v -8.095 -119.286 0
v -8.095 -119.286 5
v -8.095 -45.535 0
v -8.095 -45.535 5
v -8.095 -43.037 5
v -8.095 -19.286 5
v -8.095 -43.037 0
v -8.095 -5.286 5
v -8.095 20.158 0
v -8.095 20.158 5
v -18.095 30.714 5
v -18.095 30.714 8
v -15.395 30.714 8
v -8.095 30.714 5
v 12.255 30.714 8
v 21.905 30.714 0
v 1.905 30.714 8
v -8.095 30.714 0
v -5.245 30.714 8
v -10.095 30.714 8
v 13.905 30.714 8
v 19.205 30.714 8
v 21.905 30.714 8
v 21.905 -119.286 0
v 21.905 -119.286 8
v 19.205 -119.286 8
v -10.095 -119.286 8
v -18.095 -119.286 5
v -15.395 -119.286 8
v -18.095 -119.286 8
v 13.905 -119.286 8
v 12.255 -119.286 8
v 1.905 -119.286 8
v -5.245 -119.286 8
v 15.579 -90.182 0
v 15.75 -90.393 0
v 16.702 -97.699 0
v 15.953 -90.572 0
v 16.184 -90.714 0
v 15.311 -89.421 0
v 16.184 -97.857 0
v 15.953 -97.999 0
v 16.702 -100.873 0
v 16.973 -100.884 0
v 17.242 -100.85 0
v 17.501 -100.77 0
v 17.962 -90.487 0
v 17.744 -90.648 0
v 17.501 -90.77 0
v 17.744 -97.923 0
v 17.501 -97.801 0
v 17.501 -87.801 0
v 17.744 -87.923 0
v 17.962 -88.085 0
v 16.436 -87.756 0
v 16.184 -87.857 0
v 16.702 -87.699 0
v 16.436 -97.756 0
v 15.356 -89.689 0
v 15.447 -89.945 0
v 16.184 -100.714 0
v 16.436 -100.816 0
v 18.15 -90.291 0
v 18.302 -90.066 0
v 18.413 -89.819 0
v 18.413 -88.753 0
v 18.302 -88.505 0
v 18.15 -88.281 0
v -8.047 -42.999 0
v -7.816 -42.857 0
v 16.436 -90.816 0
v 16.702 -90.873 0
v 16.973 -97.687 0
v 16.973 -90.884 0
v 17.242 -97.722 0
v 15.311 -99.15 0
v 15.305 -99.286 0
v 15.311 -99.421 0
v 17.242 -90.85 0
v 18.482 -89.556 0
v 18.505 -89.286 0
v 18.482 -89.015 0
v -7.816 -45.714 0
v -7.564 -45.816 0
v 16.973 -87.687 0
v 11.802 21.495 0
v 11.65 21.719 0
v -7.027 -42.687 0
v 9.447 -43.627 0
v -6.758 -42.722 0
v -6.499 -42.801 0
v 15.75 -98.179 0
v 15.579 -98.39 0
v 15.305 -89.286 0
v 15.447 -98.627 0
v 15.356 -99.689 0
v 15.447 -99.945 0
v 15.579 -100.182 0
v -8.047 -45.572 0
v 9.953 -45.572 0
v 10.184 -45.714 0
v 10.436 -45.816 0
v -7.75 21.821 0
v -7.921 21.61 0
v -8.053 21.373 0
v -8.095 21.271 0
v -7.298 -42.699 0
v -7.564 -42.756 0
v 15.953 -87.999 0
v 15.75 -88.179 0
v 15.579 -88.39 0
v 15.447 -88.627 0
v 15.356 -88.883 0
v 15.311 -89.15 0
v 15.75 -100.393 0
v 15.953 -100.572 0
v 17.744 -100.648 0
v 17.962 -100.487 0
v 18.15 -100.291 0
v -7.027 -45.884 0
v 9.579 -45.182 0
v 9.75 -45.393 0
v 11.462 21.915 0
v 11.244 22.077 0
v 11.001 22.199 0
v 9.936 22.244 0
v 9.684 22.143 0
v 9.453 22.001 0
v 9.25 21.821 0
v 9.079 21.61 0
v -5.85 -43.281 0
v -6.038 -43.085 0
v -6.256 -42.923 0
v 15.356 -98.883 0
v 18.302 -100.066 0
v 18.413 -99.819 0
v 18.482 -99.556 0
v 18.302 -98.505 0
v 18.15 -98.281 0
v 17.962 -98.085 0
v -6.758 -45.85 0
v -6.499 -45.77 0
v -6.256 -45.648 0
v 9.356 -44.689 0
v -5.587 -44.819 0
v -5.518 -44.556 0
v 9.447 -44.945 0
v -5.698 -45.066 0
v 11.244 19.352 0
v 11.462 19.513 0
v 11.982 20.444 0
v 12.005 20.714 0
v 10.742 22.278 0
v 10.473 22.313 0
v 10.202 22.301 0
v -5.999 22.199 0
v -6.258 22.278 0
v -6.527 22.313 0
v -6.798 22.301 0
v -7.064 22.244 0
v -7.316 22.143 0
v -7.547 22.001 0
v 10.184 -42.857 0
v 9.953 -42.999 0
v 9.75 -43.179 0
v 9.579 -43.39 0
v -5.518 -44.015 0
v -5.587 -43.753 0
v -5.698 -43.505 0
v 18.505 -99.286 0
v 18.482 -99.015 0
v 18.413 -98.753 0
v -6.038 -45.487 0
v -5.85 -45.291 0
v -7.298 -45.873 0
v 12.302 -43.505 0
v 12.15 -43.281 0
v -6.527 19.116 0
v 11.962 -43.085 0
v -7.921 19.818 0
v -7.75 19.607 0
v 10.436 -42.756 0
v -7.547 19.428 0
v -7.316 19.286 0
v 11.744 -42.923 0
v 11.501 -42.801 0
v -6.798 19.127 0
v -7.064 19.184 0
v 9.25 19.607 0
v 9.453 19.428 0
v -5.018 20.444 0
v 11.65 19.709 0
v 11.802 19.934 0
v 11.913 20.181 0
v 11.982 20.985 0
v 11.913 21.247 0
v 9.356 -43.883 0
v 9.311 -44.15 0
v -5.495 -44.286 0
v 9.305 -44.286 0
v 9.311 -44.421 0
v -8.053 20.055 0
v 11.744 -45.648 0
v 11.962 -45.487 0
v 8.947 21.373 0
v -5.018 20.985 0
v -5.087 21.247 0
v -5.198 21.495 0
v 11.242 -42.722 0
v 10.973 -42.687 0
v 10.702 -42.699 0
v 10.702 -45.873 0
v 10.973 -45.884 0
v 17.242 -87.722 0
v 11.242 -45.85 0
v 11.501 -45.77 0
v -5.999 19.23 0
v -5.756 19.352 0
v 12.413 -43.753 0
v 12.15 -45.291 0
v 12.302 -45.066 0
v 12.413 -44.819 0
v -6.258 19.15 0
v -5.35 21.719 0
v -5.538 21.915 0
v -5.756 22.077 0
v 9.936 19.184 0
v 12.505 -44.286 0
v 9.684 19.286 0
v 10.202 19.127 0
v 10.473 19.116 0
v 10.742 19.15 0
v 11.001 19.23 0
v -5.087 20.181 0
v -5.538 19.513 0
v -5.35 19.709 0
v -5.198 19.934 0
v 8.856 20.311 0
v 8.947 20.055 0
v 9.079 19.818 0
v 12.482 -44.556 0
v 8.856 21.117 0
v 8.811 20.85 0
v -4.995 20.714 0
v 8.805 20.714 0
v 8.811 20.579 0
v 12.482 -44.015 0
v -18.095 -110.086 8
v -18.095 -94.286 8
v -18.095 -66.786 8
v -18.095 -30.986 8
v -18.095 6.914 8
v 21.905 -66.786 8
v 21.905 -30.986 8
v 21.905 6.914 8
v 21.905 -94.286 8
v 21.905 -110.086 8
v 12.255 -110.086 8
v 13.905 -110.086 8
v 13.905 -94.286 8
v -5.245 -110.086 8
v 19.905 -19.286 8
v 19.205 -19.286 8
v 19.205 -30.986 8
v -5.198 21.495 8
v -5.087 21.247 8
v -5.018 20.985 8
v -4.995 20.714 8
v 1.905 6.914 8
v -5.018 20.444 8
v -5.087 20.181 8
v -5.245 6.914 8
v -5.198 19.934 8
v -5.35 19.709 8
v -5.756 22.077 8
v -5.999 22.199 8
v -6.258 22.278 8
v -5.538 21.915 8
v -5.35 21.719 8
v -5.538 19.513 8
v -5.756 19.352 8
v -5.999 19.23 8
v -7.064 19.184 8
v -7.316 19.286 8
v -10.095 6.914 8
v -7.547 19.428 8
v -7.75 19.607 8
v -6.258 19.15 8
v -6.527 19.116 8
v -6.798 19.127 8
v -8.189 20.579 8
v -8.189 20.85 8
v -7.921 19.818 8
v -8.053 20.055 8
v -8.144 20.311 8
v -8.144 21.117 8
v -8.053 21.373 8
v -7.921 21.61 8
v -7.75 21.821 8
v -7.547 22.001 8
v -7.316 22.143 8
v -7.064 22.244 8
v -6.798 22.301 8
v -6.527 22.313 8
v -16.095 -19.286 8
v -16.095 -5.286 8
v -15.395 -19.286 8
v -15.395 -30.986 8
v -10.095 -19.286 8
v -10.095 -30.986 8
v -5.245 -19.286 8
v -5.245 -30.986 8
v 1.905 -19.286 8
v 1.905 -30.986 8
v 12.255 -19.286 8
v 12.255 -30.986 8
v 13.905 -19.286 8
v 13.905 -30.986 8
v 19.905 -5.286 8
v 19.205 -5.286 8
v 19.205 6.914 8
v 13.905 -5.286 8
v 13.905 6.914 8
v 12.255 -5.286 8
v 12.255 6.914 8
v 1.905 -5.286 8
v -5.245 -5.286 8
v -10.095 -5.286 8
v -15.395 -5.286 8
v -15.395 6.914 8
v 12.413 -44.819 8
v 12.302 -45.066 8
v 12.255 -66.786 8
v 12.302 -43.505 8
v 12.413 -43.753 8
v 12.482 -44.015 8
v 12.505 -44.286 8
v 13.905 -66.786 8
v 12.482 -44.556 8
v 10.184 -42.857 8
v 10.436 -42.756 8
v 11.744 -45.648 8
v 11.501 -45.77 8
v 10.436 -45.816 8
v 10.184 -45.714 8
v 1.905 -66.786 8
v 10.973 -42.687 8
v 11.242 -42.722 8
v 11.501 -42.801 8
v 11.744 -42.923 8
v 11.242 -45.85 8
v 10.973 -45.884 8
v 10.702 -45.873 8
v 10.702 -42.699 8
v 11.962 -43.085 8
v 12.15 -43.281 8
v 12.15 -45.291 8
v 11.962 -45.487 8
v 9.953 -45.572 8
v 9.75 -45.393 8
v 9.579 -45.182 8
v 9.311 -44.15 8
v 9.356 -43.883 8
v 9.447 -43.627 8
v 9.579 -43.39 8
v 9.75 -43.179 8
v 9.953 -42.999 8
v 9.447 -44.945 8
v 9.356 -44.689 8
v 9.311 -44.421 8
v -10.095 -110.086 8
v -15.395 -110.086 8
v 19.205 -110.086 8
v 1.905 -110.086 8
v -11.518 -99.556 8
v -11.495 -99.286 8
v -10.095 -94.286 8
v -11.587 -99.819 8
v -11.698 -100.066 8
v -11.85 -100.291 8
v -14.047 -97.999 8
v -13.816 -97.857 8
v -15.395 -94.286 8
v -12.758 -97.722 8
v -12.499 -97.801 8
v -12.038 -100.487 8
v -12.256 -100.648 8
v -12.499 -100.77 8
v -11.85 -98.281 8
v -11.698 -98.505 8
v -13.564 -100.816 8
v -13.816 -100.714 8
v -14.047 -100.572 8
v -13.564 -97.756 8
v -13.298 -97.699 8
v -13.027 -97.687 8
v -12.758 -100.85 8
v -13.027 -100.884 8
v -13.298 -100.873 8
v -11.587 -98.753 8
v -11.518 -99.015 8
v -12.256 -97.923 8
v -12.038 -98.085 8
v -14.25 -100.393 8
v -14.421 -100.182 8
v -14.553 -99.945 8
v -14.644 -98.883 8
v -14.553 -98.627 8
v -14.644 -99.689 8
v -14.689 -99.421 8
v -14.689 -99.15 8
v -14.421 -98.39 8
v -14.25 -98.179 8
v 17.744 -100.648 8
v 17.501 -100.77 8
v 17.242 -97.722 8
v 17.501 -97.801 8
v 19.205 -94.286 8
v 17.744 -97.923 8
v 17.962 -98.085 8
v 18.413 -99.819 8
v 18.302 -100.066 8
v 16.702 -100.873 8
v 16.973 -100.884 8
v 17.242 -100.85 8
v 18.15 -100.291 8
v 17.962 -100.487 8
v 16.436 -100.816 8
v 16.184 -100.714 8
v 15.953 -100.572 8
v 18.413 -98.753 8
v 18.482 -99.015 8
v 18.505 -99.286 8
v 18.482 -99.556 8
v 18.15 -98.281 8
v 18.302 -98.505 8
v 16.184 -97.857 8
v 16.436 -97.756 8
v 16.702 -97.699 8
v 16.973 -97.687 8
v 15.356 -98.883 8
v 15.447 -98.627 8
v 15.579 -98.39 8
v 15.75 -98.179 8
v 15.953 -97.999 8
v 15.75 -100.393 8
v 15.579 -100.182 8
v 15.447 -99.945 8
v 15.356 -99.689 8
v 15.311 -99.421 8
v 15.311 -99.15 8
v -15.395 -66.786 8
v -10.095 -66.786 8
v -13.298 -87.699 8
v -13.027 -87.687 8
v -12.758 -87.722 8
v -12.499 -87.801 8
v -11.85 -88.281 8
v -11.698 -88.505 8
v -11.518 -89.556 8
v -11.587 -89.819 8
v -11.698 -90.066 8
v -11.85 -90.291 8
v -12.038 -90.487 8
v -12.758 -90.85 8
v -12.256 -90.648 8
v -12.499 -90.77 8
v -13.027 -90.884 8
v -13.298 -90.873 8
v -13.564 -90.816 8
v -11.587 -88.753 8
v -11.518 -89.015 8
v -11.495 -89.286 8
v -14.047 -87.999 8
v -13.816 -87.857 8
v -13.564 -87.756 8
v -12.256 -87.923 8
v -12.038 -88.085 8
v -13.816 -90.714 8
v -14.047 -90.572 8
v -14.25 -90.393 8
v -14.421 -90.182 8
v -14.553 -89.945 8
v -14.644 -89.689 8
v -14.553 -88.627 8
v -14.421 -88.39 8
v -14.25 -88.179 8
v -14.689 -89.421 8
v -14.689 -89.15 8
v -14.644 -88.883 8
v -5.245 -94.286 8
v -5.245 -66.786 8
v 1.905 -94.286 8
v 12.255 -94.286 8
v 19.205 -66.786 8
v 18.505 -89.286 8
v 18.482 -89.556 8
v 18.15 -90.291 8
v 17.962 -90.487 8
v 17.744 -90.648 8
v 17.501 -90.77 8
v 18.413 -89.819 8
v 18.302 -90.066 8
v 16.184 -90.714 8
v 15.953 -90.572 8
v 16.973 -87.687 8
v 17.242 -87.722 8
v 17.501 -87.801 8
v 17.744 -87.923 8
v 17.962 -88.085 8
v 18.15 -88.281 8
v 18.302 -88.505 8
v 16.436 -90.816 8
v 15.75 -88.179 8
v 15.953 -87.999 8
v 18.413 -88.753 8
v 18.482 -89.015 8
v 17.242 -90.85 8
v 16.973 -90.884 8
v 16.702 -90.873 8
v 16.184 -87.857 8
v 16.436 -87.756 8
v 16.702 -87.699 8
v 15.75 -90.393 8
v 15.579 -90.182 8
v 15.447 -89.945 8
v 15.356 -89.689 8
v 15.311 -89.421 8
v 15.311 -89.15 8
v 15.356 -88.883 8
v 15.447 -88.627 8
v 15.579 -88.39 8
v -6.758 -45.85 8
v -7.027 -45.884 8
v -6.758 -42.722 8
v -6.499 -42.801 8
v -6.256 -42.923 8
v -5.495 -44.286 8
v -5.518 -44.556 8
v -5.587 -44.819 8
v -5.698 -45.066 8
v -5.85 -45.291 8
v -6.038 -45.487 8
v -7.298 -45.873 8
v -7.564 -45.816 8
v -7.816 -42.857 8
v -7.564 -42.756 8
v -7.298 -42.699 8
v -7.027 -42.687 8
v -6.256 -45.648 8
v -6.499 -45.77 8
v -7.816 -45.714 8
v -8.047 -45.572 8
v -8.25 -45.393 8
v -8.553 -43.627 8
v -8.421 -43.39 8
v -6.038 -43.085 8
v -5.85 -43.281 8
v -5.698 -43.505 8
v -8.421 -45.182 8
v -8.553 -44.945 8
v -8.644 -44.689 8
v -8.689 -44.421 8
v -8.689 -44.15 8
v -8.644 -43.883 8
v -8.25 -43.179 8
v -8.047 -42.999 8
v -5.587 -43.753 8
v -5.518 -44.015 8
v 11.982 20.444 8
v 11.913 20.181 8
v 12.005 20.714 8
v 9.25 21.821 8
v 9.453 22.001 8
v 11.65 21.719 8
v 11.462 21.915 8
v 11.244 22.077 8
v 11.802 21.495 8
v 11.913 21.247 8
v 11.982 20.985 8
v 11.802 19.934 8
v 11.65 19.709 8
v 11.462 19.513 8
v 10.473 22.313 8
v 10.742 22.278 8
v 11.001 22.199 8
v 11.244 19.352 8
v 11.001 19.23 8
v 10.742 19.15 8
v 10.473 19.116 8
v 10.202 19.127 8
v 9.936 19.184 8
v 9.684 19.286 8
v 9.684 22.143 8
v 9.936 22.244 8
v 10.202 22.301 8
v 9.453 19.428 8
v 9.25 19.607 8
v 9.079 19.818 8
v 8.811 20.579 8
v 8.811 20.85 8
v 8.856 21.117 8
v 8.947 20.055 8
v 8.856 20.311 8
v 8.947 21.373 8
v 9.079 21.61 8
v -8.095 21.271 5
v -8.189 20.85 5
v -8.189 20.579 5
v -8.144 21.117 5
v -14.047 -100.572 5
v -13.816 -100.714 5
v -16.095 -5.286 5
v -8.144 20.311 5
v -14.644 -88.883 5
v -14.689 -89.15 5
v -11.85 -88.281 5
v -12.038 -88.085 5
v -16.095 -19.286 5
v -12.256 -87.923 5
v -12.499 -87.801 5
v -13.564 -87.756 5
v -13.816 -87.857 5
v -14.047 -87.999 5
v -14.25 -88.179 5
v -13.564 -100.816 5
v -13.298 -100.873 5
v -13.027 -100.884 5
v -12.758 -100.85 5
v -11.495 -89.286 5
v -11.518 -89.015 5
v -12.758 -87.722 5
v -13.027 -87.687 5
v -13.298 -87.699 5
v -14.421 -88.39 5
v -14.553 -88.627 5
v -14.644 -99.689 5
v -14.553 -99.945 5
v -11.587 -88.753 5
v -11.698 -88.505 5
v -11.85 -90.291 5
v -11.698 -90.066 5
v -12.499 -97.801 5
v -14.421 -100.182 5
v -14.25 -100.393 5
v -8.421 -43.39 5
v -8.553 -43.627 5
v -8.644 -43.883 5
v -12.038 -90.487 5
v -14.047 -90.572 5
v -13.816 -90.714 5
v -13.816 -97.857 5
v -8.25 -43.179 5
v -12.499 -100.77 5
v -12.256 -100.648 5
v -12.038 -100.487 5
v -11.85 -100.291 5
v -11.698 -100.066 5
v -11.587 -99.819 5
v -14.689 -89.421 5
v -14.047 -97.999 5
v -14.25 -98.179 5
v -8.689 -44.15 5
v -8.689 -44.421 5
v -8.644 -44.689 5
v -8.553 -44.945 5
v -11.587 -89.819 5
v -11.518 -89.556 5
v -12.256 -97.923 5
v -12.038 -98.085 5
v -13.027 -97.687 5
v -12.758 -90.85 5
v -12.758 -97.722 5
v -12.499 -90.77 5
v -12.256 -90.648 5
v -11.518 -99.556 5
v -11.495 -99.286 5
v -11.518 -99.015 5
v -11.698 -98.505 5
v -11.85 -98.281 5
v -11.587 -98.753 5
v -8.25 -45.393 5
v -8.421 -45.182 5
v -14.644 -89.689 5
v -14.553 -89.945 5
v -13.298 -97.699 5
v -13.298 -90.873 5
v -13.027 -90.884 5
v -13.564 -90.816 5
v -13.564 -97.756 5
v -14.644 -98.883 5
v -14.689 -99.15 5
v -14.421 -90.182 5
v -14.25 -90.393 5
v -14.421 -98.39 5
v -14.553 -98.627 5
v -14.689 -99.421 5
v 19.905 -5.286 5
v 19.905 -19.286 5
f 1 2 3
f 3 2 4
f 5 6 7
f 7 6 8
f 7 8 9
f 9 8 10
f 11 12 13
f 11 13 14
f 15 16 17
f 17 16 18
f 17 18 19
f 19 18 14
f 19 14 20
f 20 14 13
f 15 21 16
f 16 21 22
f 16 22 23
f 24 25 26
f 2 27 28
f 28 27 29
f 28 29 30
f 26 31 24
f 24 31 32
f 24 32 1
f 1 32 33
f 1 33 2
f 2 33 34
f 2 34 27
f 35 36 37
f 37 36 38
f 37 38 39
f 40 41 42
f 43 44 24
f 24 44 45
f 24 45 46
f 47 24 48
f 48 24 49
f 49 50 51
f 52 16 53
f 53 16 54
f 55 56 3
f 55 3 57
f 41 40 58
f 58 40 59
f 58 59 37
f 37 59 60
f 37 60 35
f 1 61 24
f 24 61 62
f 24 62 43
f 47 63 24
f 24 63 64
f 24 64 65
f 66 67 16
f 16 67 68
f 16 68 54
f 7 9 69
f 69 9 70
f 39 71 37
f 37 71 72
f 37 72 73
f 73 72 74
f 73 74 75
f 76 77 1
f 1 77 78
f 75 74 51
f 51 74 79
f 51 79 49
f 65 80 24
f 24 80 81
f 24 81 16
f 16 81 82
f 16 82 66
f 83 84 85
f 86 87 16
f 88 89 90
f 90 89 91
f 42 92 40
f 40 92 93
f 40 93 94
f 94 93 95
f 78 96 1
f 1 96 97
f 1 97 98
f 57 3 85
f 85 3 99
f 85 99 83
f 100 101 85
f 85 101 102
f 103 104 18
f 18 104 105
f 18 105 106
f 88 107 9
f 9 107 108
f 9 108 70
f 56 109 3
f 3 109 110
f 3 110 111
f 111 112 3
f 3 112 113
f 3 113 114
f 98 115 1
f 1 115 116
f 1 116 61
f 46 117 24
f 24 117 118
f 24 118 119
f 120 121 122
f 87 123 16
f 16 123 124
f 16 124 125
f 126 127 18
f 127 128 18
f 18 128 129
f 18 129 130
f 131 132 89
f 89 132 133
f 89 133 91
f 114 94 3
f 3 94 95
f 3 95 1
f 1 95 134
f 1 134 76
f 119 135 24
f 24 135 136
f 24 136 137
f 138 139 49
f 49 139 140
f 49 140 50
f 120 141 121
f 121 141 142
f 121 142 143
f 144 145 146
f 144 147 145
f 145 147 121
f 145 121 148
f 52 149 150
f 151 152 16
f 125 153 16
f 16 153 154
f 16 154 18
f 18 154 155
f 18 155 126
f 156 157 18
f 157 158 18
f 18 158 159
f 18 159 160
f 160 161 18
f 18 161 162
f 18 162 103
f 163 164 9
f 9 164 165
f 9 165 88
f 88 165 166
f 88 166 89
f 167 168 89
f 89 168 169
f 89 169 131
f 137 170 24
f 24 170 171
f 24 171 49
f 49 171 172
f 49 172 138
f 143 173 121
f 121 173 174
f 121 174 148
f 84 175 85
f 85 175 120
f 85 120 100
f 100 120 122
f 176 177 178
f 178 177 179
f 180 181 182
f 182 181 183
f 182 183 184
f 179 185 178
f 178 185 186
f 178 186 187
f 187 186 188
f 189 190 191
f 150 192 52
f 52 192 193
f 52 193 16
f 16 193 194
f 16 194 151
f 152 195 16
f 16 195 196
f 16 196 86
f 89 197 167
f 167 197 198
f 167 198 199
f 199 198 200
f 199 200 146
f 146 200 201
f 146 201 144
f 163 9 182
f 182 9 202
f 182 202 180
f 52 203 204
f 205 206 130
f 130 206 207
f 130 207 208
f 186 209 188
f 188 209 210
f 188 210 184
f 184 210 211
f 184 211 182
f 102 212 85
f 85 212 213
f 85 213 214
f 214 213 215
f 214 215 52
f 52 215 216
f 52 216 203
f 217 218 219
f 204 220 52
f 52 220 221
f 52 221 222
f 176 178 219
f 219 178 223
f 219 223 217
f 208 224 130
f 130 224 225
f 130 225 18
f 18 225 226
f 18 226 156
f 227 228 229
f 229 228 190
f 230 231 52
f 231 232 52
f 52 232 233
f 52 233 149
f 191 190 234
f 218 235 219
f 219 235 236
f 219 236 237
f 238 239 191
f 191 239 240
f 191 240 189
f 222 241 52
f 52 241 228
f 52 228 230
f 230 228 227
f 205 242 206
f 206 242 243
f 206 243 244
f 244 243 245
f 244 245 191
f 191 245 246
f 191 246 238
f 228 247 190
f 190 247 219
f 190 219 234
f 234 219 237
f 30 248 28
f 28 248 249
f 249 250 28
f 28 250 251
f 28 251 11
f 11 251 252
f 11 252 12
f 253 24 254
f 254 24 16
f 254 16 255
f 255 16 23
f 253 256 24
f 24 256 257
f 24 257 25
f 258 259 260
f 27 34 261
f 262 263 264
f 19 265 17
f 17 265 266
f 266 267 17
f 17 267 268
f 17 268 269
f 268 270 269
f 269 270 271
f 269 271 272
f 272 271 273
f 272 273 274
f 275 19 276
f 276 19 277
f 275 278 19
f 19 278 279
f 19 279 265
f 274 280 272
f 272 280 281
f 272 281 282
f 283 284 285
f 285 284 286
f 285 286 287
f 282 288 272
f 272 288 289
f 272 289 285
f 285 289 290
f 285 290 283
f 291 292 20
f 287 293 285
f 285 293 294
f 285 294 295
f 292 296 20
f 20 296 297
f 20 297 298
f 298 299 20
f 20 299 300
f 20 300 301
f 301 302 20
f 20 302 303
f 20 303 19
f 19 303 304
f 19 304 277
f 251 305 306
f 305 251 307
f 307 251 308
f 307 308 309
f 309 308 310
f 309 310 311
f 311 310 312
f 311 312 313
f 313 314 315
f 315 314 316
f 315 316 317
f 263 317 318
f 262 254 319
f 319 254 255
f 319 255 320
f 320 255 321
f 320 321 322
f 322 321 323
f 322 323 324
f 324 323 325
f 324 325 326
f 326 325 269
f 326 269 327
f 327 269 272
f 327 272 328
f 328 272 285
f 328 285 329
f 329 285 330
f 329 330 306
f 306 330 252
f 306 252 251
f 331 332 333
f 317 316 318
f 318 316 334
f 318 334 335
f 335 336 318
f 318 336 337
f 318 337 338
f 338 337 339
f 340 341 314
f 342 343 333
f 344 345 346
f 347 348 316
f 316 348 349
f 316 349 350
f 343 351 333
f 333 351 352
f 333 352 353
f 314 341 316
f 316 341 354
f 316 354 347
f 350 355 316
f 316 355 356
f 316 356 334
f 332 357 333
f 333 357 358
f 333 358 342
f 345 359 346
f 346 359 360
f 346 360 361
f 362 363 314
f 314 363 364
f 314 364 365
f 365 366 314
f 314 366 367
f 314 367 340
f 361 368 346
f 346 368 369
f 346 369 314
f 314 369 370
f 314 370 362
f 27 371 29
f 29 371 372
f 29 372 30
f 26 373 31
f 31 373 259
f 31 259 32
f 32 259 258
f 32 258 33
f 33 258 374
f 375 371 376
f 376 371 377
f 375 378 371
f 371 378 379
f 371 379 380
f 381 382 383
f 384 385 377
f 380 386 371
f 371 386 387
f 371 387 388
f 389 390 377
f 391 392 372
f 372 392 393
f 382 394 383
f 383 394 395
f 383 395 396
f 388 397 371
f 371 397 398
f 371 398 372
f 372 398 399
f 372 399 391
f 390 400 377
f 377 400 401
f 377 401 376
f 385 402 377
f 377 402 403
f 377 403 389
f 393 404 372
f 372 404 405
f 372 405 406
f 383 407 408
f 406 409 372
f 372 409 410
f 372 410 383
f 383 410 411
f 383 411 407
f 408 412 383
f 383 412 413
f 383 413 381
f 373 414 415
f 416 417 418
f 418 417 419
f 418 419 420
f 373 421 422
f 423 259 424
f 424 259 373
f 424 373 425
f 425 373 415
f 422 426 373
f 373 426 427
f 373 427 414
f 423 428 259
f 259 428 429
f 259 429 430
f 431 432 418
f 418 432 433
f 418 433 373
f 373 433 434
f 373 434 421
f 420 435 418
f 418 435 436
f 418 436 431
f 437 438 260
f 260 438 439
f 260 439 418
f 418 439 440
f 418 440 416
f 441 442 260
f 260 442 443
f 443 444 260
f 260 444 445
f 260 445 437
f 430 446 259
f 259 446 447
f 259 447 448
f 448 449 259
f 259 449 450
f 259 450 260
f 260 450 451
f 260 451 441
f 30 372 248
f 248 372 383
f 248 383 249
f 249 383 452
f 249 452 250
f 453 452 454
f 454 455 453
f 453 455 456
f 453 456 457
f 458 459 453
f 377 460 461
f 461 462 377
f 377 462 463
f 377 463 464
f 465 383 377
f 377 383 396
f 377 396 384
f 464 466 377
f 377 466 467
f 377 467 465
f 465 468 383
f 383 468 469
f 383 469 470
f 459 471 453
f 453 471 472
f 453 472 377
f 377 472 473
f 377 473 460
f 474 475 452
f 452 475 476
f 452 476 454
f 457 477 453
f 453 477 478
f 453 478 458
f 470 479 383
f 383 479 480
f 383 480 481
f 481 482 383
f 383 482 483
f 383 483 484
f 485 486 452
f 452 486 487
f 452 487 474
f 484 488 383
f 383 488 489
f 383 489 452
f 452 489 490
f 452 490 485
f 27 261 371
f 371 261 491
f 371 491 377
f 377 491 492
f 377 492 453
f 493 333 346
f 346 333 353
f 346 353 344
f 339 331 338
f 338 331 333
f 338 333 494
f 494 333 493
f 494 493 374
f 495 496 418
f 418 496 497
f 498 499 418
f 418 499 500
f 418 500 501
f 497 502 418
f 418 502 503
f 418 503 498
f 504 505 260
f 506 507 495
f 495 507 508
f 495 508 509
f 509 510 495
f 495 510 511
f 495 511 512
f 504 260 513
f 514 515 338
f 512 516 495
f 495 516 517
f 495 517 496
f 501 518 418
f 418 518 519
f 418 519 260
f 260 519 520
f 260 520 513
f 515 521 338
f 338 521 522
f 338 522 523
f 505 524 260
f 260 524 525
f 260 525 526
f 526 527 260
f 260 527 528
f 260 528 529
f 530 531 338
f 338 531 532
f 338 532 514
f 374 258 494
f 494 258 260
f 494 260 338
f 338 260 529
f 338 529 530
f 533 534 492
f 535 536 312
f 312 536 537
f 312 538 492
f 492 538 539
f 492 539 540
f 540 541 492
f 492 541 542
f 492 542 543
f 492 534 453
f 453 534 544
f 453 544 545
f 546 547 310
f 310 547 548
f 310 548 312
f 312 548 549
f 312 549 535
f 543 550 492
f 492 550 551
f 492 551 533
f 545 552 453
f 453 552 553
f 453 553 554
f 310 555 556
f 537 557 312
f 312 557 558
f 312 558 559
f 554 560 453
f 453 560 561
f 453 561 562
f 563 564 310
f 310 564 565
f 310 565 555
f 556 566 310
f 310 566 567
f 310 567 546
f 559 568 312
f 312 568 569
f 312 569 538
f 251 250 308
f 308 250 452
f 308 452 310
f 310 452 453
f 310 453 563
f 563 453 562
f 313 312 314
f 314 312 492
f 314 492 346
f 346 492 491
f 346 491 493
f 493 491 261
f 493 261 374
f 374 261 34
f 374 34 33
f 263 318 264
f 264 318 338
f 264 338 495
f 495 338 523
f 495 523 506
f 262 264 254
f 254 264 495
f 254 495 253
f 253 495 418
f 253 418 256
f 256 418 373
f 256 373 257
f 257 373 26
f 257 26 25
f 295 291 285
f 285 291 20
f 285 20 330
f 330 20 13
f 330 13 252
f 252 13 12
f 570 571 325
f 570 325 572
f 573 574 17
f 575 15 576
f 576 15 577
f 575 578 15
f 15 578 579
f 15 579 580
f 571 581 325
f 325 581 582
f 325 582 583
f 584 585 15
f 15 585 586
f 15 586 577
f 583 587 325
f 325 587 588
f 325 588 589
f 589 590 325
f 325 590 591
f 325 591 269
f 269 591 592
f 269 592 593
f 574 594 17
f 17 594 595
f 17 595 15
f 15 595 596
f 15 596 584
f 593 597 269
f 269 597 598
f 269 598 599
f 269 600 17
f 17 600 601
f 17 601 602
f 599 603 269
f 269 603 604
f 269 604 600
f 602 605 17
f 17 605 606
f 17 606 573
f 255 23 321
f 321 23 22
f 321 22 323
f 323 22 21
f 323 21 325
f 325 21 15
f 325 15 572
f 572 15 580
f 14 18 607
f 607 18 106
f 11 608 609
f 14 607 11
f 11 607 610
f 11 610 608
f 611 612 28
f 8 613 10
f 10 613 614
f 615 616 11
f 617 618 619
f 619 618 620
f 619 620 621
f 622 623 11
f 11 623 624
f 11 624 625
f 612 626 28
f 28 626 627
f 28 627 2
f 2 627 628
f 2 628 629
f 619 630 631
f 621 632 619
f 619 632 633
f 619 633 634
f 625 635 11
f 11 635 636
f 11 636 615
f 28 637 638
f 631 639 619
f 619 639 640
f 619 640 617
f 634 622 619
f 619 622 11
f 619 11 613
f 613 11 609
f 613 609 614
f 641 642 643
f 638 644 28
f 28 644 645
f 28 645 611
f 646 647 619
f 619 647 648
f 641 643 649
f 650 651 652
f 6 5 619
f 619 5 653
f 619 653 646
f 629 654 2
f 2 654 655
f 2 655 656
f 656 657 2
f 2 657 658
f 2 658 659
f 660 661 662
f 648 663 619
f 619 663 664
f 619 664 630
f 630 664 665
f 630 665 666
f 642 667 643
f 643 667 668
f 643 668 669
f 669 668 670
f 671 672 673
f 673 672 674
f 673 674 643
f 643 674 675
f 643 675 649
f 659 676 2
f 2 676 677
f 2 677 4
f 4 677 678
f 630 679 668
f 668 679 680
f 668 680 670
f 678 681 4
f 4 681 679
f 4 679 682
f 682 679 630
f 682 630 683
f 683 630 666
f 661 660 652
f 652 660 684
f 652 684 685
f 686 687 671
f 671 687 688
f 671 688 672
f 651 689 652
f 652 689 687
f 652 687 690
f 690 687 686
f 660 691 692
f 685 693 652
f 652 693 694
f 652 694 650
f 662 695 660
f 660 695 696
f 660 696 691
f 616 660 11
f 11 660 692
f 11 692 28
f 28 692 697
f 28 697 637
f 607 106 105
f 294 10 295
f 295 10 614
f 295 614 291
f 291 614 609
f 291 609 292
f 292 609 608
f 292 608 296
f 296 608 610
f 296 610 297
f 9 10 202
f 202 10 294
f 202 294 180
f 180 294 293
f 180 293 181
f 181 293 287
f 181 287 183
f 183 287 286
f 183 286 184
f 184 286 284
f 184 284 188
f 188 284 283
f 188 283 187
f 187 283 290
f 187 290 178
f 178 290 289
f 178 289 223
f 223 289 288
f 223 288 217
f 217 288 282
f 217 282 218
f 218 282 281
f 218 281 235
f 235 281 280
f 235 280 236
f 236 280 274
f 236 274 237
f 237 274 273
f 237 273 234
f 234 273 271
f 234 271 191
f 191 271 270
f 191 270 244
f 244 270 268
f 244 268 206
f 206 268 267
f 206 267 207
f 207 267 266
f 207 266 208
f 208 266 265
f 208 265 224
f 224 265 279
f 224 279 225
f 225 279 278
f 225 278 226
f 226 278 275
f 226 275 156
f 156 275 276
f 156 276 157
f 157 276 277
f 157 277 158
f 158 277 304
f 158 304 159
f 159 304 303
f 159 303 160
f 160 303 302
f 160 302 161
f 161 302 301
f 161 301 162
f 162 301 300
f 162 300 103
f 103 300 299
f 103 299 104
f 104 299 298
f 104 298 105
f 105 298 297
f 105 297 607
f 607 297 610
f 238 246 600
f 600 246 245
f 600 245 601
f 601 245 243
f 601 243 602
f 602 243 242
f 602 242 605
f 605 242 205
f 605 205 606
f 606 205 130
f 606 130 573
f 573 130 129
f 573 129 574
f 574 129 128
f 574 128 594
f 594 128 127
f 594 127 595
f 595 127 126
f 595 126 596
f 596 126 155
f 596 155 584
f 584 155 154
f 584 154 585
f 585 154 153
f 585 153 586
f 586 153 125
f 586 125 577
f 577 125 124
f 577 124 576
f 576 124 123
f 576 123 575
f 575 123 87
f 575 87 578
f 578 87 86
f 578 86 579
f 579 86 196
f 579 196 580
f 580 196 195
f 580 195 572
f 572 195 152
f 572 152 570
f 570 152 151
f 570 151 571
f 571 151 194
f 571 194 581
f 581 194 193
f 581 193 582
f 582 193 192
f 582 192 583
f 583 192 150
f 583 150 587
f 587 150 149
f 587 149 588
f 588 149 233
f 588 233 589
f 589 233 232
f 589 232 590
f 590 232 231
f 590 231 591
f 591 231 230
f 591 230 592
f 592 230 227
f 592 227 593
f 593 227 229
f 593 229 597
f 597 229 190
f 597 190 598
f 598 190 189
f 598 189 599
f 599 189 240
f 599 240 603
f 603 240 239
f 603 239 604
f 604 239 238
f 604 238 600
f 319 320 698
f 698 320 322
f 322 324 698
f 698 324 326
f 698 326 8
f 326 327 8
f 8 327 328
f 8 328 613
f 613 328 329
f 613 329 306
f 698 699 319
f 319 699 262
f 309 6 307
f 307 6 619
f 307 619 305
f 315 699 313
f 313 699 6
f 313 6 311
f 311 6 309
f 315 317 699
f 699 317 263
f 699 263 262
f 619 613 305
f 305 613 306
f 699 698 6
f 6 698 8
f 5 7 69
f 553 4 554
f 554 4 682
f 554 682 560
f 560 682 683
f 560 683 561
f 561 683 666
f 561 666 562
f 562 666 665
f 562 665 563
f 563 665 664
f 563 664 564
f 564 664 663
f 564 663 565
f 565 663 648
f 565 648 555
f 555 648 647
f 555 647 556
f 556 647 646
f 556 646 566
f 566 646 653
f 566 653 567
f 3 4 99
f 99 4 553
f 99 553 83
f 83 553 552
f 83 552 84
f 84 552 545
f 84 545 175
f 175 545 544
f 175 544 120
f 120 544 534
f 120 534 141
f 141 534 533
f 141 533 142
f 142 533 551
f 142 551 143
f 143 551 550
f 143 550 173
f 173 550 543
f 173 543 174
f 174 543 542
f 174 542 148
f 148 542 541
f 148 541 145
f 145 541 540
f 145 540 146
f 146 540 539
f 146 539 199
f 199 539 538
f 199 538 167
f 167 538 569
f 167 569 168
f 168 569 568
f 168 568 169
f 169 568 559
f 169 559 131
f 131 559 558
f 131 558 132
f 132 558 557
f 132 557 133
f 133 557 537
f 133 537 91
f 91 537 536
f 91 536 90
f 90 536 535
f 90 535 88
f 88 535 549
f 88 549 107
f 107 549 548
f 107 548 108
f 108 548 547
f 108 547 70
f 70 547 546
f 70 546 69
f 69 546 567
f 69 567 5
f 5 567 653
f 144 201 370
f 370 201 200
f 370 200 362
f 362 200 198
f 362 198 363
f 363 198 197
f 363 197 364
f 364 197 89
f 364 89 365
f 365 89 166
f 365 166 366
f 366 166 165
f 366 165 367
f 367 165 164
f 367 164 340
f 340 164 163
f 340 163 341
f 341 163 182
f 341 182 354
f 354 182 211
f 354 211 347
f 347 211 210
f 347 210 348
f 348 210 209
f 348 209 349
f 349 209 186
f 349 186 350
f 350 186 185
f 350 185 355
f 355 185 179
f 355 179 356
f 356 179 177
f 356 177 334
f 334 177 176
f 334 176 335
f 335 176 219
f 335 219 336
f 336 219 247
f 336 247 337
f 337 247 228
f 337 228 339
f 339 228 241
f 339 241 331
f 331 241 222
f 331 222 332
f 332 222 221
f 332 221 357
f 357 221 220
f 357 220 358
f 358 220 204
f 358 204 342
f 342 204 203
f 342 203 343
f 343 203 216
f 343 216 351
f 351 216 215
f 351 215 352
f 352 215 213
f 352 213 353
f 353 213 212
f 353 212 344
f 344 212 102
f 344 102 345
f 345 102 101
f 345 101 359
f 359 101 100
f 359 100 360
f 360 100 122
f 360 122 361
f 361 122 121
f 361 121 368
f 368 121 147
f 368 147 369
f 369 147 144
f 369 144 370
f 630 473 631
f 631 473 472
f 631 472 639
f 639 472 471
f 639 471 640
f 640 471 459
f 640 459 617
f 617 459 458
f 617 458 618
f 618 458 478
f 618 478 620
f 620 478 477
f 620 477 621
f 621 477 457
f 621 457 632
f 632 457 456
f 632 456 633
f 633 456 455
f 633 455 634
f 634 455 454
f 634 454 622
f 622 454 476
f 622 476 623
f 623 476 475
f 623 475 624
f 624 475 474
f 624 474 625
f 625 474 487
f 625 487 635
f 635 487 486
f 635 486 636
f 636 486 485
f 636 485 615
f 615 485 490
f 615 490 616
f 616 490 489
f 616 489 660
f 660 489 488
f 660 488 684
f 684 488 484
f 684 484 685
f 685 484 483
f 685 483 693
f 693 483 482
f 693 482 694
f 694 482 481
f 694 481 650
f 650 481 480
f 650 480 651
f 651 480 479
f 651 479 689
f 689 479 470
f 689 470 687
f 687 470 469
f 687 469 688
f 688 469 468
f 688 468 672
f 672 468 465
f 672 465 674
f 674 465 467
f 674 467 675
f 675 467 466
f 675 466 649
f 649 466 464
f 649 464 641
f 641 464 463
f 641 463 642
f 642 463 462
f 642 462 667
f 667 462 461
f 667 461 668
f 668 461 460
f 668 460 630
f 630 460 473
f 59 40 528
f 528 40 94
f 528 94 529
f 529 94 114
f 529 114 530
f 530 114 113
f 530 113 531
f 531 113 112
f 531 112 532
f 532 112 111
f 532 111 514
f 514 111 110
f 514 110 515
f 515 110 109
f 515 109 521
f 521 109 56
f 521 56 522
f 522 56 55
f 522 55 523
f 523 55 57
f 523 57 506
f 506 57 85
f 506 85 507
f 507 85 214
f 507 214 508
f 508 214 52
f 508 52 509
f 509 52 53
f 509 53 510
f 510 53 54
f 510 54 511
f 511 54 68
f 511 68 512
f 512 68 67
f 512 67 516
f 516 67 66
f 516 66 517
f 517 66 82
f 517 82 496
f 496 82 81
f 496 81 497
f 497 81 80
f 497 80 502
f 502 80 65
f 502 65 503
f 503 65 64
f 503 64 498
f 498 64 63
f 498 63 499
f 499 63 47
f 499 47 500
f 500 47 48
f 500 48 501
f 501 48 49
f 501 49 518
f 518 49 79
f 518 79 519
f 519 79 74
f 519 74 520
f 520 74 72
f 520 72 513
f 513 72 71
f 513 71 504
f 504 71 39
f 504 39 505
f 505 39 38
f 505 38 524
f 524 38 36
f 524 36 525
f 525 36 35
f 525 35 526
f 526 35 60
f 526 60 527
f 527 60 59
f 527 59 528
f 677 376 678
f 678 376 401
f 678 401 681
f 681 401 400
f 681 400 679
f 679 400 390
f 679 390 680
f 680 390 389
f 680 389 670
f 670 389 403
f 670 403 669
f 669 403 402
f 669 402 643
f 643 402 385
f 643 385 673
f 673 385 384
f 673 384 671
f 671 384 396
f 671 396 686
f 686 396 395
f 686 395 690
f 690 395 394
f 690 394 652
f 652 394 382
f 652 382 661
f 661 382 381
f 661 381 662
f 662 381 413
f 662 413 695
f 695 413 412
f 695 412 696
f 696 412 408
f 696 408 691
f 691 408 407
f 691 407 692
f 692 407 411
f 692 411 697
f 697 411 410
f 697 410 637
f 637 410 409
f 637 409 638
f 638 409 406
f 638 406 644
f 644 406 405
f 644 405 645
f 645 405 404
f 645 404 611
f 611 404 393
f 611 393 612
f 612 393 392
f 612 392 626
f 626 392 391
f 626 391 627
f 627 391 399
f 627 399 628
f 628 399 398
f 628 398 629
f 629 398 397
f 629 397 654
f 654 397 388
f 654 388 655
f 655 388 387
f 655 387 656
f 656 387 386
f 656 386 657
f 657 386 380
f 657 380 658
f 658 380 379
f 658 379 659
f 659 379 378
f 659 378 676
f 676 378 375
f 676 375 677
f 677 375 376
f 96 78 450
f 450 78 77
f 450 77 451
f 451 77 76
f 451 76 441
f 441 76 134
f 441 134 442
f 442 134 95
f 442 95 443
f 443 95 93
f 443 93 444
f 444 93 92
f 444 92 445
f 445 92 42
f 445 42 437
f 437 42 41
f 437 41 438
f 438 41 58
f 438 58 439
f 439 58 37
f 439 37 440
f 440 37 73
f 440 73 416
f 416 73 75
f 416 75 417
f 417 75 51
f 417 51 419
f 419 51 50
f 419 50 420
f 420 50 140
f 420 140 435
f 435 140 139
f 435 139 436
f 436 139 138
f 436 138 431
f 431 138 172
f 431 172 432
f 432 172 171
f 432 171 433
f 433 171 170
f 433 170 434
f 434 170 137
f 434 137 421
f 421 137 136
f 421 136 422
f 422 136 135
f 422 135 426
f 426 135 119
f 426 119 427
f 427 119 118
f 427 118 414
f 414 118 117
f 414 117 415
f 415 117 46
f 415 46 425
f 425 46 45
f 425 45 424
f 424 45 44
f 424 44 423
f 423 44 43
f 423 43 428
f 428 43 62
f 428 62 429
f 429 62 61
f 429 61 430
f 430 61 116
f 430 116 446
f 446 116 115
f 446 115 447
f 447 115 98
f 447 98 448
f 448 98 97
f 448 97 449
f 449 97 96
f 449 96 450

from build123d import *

# Parameters (mm, degrees)
SKETCH1_W           = 40
SKETCH1_H           = 150
BOSS_EXTRUDE1_DEPTH = 8
SKETCH2_W           = 10
SKETCH2_H           = 150
CUT_EXTRUDE1_DEPTH  = 5
SKETCH5_R           = 1.6
CUT_EXTRUDE2_DEPTH  = 35
SKETCH6_W           = 36
SKETCH6_H           = 14
CUT_EXTRUDE3_DEPTH  = 3
SKETCH7_R           = 1.6
CUT_EXTRUDE4_DEPTH  = 10
SKETCH8_R           = 1.6
CUT_EXTRUDE5_DEPTH  = 10
SKETCH9_R           = 1.6
CUT_EXTRUDE6_DEPTH  = 10


with BuildPart() as part:
    # Sketch1 → Boss-Extrude1 (new body)
    with BuildSketch(Plane.XY):
        with Locations((1.904761905, -44.285714286)):
            Rectangle(SKETCH1_W, SKETCH1_H)
    extrude(amount=BOSS_EXTRUDE1_DEPTH)

    # Sketch2 → Cut-Extrude1 (cut)
    with BuildSketch(Plane.XY):
        with Locations((-13.095238095, -44.285714286)):
            Rectangle(SKETCH2_W, SKETCH2_H)
    extrude(amount=CUT_EXTRUDE1_DEPTH, mode=Mode.SUBTRACT)

    # Sketch5 → Cut-Extrude2 (cut)
    with BuildSketch(Plane.XY.offset(8)):
        with Locations((10.404761905, 20.714285714)):
            Circle(SKETCH5_R)
        with Locations((-6.595238095, 20.714285714)):
            Circle(SKETCH5_R)
    extrude(amount=-CUT_EXTRUDE2_DEPTH, mode=Mode.SUBTRACT)

    # Sketch6 → Cut-Extrude3 (cut)
    with BuildSketch(Plane.XY.offset(8)):
        with Locations((1.904761905, -12.285714286)):
            Rectangle(SKETCH6_W, SKETCH6_H)
    extrude(amount=-CUT_EXTRUDE3_DEPTH, mode=Mode.SUBTRACT)

    # Sketch7 → Cut-Extrude4 (cut)
    with BuildSketch(Plane.XY.offset(8)):
        with Locations((-7.095238095, -44.285714286)):
            Circle(SKETCH7_R)
        with Locations((10.904761905, -44.285714286)):
            Circle(SKETCH7_R)
    extrude(amount=-CUT_EXTRUDE4_DEPTH, mode=Mode.SUBTRACT)

    # Sketch8 → Cut-Extrude5 (cut)
    with BuildSketch(Plane.XY.offset(8)):
        with Locations((-13.095238095, -89.285714286)):
            Circle(SKETCH8_R)
        with Locations((16.904761905, -89.285714286)):
            Circle(SKETCH8_R)
    extrude(amount=-CUT_EXTRUDE5_DEPTH, mode=Mode.SUBTRACT)

    # Sketch9 → Cut-Extrude6 (cut)
    with BuildSketch(Plane.XY.offset(8)):
        with Locations((-13.095238095, -99.285714286)):
            Circle(SKETCH9_R)
        with Locations((16.904761905, -99.285714286)):
            Circle(SKETCH9_R)
    extrude(amount=-CUT_EXTRUDE6_DEPTH, mode=Mode.SUBTRACT)


solid = part.part
